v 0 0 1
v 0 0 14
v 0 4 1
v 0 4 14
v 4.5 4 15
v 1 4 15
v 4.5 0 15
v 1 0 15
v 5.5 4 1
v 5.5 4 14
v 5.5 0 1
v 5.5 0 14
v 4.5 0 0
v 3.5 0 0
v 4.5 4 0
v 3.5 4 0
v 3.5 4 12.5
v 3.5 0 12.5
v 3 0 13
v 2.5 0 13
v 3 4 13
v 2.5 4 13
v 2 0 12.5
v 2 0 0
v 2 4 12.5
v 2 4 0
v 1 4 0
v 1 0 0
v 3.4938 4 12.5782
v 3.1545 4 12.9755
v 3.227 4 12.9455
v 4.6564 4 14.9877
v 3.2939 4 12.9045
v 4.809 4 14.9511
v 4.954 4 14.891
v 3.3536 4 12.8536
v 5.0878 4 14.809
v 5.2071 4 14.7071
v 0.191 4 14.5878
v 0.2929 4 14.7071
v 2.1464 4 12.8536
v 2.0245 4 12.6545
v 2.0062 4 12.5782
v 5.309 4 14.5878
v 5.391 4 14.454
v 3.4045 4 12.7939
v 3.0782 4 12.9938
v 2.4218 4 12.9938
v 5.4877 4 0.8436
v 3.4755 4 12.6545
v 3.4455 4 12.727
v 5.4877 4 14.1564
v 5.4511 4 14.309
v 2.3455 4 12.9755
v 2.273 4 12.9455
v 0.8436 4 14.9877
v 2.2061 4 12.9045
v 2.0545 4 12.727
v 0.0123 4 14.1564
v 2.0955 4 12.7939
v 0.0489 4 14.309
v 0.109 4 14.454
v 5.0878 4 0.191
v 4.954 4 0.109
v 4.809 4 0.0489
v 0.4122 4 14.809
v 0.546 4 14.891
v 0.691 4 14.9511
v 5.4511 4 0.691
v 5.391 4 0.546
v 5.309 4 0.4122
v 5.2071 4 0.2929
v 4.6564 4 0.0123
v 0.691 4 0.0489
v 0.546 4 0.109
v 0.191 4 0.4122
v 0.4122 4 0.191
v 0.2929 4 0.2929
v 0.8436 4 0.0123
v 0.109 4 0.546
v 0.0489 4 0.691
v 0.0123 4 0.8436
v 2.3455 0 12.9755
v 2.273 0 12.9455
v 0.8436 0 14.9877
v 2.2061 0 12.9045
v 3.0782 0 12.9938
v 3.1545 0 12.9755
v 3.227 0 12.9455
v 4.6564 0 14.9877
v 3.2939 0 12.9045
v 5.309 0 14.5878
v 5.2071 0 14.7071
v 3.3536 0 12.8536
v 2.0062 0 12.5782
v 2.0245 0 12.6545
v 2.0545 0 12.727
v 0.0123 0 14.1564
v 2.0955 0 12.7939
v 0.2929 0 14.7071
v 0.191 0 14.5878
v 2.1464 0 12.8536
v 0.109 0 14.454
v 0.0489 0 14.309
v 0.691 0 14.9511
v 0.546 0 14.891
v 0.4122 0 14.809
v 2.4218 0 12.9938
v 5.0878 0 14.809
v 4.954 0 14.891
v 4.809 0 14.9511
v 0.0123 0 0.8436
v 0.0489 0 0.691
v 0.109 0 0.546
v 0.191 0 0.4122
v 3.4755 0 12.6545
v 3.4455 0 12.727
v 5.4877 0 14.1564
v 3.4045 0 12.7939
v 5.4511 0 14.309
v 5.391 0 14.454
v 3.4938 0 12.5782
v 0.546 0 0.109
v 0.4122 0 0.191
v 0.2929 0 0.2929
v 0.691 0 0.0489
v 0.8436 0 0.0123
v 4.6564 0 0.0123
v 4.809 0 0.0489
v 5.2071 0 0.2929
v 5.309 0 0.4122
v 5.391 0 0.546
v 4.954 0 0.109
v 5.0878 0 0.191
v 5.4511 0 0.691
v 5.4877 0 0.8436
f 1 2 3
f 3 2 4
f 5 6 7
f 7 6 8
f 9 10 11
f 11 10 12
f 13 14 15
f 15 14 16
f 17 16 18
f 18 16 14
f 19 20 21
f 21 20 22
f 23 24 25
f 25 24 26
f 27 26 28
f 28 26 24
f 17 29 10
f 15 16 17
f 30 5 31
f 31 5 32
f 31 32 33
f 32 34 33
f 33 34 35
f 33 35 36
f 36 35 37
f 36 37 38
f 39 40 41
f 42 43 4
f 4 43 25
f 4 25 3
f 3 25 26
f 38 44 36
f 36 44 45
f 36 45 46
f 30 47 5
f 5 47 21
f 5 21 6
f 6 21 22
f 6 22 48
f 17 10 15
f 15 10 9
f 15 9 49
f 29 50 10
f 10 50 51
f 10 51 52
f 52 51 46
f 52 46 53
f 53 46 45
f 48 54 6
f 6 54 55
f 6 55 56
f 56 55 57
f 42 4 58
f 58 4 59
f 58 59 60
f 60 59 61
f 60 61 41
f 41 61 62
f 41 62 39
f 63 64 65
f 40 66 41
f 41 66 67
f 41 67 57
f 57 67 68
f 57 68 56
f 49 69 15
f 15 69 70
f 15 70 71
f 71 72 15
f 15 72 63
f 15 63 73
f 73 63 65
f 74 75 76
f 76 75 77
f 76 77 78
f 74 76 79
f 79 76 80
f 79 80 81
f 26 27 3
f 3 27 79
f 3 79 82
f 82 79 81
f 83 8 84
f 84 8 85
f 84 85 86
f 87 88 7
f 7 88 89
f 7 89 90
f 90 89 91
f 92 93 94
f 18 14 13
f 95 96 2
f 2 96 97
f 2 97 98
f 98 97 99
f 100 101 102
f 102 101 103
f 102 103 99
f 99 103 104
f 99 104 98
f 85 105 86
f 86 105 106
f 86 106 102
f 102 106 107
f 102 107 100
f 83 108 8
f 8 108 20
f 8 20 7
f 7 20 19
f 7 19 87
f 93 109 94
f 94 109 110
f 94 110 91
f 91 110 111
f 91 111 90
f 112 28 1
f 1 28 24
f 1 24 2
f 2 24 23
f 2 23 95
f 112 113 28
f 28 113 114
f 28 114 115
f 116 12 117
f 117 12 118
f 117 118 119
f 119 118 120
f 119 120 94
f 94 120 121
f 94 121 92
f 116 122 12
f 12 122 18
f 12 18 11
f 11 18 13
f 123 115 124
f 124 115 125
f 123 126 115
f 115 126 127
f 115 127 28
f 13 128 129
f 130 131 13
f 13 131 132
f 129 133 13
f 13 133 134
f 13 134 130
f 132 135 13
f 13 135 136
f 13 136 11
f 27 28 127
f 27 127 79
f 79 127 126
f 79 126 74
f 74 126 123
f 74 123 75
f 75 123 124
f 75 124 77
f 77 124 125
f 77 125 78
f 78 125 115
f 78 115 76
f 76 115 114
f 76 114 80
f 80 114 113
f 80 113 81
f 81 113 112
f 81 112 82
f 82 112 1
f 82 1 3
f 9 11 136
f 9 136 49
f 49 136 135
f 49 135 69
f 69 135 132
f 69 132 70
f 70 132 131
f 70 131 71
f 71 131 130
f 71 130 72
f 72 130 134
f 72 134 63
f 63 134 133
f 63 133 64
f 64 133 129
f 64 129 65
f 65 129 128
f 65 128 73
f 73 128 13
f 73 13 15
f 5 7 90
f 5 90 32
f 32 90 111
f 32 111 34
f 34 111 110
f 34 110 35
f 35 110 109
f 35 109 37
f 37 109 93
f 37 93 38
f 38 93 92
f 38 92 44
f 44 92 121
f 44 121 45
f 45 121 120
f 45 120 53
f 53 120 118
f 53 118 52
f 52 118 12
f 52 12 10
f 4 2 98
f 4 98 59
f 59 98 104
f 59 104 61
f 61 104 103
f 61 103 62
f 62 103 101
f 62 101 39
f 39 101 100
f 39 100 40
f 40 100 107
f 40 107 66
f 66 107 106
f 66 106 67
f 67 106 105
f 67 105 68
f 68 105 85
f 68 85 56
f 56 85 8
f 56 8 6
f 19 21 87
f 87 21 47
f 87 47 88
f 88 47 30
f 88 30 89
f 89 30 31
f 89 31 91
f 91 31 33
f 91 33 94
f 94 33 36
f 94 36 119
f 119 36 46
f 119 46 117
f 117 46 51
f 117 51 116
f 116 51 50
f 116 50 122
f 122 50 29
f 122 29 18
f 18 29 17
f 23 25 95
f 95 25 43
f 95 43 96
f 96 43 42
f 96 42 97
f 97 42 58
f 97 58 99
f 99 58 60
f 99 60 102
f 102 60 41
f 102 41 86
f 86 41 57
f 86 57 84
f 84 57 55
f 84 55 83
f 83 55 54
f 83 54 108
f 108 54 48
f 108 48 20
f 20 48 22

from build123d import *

# Parameters (mm, degrees)
SALIENTE_EXTRUIR1_DEPTH = 4
REDONDEO1_R             = 1
REDONDEO2_R             = 0.5


with BuildPart() as part:
    # Croquis1 → Saliente-Extruir1 (new body)
    with BuildSketch(Plane(origin=(0, 0, 0), x_dir=(1, 0, 0), z_dir=(0, 1, 0))):
        Polygon((3.5, 0), (5.5, 0), (5.5, -15), (0, -15), (0, 0), (2, 0), (2, -13), (3.5, -13), align=None)
    extrude(amount=SALIENTE_EXTRUIR1_DEPTH)

    # Redondeo1
    redondeo1_edges = [part.edges().sort_by_distance(p)[0] for p in [
        (0, 2, 0),
        (5.5, 2, 0),
        (5.5, 2, 15),
        (0, 2, 15),
    ]]
    fillet(redondeo1_edges, radius=REDONDEO1_R)

    # Redondeo2
    redondeo2_edges = [part.edges().sort_by_distance(p)[0] for p in [
        (2, 2, 13),
        (3.5, 2, 13),
    ]]
    fillet(redondeo2_edges, radius=REDONDEO2_R)


solid = part.part
